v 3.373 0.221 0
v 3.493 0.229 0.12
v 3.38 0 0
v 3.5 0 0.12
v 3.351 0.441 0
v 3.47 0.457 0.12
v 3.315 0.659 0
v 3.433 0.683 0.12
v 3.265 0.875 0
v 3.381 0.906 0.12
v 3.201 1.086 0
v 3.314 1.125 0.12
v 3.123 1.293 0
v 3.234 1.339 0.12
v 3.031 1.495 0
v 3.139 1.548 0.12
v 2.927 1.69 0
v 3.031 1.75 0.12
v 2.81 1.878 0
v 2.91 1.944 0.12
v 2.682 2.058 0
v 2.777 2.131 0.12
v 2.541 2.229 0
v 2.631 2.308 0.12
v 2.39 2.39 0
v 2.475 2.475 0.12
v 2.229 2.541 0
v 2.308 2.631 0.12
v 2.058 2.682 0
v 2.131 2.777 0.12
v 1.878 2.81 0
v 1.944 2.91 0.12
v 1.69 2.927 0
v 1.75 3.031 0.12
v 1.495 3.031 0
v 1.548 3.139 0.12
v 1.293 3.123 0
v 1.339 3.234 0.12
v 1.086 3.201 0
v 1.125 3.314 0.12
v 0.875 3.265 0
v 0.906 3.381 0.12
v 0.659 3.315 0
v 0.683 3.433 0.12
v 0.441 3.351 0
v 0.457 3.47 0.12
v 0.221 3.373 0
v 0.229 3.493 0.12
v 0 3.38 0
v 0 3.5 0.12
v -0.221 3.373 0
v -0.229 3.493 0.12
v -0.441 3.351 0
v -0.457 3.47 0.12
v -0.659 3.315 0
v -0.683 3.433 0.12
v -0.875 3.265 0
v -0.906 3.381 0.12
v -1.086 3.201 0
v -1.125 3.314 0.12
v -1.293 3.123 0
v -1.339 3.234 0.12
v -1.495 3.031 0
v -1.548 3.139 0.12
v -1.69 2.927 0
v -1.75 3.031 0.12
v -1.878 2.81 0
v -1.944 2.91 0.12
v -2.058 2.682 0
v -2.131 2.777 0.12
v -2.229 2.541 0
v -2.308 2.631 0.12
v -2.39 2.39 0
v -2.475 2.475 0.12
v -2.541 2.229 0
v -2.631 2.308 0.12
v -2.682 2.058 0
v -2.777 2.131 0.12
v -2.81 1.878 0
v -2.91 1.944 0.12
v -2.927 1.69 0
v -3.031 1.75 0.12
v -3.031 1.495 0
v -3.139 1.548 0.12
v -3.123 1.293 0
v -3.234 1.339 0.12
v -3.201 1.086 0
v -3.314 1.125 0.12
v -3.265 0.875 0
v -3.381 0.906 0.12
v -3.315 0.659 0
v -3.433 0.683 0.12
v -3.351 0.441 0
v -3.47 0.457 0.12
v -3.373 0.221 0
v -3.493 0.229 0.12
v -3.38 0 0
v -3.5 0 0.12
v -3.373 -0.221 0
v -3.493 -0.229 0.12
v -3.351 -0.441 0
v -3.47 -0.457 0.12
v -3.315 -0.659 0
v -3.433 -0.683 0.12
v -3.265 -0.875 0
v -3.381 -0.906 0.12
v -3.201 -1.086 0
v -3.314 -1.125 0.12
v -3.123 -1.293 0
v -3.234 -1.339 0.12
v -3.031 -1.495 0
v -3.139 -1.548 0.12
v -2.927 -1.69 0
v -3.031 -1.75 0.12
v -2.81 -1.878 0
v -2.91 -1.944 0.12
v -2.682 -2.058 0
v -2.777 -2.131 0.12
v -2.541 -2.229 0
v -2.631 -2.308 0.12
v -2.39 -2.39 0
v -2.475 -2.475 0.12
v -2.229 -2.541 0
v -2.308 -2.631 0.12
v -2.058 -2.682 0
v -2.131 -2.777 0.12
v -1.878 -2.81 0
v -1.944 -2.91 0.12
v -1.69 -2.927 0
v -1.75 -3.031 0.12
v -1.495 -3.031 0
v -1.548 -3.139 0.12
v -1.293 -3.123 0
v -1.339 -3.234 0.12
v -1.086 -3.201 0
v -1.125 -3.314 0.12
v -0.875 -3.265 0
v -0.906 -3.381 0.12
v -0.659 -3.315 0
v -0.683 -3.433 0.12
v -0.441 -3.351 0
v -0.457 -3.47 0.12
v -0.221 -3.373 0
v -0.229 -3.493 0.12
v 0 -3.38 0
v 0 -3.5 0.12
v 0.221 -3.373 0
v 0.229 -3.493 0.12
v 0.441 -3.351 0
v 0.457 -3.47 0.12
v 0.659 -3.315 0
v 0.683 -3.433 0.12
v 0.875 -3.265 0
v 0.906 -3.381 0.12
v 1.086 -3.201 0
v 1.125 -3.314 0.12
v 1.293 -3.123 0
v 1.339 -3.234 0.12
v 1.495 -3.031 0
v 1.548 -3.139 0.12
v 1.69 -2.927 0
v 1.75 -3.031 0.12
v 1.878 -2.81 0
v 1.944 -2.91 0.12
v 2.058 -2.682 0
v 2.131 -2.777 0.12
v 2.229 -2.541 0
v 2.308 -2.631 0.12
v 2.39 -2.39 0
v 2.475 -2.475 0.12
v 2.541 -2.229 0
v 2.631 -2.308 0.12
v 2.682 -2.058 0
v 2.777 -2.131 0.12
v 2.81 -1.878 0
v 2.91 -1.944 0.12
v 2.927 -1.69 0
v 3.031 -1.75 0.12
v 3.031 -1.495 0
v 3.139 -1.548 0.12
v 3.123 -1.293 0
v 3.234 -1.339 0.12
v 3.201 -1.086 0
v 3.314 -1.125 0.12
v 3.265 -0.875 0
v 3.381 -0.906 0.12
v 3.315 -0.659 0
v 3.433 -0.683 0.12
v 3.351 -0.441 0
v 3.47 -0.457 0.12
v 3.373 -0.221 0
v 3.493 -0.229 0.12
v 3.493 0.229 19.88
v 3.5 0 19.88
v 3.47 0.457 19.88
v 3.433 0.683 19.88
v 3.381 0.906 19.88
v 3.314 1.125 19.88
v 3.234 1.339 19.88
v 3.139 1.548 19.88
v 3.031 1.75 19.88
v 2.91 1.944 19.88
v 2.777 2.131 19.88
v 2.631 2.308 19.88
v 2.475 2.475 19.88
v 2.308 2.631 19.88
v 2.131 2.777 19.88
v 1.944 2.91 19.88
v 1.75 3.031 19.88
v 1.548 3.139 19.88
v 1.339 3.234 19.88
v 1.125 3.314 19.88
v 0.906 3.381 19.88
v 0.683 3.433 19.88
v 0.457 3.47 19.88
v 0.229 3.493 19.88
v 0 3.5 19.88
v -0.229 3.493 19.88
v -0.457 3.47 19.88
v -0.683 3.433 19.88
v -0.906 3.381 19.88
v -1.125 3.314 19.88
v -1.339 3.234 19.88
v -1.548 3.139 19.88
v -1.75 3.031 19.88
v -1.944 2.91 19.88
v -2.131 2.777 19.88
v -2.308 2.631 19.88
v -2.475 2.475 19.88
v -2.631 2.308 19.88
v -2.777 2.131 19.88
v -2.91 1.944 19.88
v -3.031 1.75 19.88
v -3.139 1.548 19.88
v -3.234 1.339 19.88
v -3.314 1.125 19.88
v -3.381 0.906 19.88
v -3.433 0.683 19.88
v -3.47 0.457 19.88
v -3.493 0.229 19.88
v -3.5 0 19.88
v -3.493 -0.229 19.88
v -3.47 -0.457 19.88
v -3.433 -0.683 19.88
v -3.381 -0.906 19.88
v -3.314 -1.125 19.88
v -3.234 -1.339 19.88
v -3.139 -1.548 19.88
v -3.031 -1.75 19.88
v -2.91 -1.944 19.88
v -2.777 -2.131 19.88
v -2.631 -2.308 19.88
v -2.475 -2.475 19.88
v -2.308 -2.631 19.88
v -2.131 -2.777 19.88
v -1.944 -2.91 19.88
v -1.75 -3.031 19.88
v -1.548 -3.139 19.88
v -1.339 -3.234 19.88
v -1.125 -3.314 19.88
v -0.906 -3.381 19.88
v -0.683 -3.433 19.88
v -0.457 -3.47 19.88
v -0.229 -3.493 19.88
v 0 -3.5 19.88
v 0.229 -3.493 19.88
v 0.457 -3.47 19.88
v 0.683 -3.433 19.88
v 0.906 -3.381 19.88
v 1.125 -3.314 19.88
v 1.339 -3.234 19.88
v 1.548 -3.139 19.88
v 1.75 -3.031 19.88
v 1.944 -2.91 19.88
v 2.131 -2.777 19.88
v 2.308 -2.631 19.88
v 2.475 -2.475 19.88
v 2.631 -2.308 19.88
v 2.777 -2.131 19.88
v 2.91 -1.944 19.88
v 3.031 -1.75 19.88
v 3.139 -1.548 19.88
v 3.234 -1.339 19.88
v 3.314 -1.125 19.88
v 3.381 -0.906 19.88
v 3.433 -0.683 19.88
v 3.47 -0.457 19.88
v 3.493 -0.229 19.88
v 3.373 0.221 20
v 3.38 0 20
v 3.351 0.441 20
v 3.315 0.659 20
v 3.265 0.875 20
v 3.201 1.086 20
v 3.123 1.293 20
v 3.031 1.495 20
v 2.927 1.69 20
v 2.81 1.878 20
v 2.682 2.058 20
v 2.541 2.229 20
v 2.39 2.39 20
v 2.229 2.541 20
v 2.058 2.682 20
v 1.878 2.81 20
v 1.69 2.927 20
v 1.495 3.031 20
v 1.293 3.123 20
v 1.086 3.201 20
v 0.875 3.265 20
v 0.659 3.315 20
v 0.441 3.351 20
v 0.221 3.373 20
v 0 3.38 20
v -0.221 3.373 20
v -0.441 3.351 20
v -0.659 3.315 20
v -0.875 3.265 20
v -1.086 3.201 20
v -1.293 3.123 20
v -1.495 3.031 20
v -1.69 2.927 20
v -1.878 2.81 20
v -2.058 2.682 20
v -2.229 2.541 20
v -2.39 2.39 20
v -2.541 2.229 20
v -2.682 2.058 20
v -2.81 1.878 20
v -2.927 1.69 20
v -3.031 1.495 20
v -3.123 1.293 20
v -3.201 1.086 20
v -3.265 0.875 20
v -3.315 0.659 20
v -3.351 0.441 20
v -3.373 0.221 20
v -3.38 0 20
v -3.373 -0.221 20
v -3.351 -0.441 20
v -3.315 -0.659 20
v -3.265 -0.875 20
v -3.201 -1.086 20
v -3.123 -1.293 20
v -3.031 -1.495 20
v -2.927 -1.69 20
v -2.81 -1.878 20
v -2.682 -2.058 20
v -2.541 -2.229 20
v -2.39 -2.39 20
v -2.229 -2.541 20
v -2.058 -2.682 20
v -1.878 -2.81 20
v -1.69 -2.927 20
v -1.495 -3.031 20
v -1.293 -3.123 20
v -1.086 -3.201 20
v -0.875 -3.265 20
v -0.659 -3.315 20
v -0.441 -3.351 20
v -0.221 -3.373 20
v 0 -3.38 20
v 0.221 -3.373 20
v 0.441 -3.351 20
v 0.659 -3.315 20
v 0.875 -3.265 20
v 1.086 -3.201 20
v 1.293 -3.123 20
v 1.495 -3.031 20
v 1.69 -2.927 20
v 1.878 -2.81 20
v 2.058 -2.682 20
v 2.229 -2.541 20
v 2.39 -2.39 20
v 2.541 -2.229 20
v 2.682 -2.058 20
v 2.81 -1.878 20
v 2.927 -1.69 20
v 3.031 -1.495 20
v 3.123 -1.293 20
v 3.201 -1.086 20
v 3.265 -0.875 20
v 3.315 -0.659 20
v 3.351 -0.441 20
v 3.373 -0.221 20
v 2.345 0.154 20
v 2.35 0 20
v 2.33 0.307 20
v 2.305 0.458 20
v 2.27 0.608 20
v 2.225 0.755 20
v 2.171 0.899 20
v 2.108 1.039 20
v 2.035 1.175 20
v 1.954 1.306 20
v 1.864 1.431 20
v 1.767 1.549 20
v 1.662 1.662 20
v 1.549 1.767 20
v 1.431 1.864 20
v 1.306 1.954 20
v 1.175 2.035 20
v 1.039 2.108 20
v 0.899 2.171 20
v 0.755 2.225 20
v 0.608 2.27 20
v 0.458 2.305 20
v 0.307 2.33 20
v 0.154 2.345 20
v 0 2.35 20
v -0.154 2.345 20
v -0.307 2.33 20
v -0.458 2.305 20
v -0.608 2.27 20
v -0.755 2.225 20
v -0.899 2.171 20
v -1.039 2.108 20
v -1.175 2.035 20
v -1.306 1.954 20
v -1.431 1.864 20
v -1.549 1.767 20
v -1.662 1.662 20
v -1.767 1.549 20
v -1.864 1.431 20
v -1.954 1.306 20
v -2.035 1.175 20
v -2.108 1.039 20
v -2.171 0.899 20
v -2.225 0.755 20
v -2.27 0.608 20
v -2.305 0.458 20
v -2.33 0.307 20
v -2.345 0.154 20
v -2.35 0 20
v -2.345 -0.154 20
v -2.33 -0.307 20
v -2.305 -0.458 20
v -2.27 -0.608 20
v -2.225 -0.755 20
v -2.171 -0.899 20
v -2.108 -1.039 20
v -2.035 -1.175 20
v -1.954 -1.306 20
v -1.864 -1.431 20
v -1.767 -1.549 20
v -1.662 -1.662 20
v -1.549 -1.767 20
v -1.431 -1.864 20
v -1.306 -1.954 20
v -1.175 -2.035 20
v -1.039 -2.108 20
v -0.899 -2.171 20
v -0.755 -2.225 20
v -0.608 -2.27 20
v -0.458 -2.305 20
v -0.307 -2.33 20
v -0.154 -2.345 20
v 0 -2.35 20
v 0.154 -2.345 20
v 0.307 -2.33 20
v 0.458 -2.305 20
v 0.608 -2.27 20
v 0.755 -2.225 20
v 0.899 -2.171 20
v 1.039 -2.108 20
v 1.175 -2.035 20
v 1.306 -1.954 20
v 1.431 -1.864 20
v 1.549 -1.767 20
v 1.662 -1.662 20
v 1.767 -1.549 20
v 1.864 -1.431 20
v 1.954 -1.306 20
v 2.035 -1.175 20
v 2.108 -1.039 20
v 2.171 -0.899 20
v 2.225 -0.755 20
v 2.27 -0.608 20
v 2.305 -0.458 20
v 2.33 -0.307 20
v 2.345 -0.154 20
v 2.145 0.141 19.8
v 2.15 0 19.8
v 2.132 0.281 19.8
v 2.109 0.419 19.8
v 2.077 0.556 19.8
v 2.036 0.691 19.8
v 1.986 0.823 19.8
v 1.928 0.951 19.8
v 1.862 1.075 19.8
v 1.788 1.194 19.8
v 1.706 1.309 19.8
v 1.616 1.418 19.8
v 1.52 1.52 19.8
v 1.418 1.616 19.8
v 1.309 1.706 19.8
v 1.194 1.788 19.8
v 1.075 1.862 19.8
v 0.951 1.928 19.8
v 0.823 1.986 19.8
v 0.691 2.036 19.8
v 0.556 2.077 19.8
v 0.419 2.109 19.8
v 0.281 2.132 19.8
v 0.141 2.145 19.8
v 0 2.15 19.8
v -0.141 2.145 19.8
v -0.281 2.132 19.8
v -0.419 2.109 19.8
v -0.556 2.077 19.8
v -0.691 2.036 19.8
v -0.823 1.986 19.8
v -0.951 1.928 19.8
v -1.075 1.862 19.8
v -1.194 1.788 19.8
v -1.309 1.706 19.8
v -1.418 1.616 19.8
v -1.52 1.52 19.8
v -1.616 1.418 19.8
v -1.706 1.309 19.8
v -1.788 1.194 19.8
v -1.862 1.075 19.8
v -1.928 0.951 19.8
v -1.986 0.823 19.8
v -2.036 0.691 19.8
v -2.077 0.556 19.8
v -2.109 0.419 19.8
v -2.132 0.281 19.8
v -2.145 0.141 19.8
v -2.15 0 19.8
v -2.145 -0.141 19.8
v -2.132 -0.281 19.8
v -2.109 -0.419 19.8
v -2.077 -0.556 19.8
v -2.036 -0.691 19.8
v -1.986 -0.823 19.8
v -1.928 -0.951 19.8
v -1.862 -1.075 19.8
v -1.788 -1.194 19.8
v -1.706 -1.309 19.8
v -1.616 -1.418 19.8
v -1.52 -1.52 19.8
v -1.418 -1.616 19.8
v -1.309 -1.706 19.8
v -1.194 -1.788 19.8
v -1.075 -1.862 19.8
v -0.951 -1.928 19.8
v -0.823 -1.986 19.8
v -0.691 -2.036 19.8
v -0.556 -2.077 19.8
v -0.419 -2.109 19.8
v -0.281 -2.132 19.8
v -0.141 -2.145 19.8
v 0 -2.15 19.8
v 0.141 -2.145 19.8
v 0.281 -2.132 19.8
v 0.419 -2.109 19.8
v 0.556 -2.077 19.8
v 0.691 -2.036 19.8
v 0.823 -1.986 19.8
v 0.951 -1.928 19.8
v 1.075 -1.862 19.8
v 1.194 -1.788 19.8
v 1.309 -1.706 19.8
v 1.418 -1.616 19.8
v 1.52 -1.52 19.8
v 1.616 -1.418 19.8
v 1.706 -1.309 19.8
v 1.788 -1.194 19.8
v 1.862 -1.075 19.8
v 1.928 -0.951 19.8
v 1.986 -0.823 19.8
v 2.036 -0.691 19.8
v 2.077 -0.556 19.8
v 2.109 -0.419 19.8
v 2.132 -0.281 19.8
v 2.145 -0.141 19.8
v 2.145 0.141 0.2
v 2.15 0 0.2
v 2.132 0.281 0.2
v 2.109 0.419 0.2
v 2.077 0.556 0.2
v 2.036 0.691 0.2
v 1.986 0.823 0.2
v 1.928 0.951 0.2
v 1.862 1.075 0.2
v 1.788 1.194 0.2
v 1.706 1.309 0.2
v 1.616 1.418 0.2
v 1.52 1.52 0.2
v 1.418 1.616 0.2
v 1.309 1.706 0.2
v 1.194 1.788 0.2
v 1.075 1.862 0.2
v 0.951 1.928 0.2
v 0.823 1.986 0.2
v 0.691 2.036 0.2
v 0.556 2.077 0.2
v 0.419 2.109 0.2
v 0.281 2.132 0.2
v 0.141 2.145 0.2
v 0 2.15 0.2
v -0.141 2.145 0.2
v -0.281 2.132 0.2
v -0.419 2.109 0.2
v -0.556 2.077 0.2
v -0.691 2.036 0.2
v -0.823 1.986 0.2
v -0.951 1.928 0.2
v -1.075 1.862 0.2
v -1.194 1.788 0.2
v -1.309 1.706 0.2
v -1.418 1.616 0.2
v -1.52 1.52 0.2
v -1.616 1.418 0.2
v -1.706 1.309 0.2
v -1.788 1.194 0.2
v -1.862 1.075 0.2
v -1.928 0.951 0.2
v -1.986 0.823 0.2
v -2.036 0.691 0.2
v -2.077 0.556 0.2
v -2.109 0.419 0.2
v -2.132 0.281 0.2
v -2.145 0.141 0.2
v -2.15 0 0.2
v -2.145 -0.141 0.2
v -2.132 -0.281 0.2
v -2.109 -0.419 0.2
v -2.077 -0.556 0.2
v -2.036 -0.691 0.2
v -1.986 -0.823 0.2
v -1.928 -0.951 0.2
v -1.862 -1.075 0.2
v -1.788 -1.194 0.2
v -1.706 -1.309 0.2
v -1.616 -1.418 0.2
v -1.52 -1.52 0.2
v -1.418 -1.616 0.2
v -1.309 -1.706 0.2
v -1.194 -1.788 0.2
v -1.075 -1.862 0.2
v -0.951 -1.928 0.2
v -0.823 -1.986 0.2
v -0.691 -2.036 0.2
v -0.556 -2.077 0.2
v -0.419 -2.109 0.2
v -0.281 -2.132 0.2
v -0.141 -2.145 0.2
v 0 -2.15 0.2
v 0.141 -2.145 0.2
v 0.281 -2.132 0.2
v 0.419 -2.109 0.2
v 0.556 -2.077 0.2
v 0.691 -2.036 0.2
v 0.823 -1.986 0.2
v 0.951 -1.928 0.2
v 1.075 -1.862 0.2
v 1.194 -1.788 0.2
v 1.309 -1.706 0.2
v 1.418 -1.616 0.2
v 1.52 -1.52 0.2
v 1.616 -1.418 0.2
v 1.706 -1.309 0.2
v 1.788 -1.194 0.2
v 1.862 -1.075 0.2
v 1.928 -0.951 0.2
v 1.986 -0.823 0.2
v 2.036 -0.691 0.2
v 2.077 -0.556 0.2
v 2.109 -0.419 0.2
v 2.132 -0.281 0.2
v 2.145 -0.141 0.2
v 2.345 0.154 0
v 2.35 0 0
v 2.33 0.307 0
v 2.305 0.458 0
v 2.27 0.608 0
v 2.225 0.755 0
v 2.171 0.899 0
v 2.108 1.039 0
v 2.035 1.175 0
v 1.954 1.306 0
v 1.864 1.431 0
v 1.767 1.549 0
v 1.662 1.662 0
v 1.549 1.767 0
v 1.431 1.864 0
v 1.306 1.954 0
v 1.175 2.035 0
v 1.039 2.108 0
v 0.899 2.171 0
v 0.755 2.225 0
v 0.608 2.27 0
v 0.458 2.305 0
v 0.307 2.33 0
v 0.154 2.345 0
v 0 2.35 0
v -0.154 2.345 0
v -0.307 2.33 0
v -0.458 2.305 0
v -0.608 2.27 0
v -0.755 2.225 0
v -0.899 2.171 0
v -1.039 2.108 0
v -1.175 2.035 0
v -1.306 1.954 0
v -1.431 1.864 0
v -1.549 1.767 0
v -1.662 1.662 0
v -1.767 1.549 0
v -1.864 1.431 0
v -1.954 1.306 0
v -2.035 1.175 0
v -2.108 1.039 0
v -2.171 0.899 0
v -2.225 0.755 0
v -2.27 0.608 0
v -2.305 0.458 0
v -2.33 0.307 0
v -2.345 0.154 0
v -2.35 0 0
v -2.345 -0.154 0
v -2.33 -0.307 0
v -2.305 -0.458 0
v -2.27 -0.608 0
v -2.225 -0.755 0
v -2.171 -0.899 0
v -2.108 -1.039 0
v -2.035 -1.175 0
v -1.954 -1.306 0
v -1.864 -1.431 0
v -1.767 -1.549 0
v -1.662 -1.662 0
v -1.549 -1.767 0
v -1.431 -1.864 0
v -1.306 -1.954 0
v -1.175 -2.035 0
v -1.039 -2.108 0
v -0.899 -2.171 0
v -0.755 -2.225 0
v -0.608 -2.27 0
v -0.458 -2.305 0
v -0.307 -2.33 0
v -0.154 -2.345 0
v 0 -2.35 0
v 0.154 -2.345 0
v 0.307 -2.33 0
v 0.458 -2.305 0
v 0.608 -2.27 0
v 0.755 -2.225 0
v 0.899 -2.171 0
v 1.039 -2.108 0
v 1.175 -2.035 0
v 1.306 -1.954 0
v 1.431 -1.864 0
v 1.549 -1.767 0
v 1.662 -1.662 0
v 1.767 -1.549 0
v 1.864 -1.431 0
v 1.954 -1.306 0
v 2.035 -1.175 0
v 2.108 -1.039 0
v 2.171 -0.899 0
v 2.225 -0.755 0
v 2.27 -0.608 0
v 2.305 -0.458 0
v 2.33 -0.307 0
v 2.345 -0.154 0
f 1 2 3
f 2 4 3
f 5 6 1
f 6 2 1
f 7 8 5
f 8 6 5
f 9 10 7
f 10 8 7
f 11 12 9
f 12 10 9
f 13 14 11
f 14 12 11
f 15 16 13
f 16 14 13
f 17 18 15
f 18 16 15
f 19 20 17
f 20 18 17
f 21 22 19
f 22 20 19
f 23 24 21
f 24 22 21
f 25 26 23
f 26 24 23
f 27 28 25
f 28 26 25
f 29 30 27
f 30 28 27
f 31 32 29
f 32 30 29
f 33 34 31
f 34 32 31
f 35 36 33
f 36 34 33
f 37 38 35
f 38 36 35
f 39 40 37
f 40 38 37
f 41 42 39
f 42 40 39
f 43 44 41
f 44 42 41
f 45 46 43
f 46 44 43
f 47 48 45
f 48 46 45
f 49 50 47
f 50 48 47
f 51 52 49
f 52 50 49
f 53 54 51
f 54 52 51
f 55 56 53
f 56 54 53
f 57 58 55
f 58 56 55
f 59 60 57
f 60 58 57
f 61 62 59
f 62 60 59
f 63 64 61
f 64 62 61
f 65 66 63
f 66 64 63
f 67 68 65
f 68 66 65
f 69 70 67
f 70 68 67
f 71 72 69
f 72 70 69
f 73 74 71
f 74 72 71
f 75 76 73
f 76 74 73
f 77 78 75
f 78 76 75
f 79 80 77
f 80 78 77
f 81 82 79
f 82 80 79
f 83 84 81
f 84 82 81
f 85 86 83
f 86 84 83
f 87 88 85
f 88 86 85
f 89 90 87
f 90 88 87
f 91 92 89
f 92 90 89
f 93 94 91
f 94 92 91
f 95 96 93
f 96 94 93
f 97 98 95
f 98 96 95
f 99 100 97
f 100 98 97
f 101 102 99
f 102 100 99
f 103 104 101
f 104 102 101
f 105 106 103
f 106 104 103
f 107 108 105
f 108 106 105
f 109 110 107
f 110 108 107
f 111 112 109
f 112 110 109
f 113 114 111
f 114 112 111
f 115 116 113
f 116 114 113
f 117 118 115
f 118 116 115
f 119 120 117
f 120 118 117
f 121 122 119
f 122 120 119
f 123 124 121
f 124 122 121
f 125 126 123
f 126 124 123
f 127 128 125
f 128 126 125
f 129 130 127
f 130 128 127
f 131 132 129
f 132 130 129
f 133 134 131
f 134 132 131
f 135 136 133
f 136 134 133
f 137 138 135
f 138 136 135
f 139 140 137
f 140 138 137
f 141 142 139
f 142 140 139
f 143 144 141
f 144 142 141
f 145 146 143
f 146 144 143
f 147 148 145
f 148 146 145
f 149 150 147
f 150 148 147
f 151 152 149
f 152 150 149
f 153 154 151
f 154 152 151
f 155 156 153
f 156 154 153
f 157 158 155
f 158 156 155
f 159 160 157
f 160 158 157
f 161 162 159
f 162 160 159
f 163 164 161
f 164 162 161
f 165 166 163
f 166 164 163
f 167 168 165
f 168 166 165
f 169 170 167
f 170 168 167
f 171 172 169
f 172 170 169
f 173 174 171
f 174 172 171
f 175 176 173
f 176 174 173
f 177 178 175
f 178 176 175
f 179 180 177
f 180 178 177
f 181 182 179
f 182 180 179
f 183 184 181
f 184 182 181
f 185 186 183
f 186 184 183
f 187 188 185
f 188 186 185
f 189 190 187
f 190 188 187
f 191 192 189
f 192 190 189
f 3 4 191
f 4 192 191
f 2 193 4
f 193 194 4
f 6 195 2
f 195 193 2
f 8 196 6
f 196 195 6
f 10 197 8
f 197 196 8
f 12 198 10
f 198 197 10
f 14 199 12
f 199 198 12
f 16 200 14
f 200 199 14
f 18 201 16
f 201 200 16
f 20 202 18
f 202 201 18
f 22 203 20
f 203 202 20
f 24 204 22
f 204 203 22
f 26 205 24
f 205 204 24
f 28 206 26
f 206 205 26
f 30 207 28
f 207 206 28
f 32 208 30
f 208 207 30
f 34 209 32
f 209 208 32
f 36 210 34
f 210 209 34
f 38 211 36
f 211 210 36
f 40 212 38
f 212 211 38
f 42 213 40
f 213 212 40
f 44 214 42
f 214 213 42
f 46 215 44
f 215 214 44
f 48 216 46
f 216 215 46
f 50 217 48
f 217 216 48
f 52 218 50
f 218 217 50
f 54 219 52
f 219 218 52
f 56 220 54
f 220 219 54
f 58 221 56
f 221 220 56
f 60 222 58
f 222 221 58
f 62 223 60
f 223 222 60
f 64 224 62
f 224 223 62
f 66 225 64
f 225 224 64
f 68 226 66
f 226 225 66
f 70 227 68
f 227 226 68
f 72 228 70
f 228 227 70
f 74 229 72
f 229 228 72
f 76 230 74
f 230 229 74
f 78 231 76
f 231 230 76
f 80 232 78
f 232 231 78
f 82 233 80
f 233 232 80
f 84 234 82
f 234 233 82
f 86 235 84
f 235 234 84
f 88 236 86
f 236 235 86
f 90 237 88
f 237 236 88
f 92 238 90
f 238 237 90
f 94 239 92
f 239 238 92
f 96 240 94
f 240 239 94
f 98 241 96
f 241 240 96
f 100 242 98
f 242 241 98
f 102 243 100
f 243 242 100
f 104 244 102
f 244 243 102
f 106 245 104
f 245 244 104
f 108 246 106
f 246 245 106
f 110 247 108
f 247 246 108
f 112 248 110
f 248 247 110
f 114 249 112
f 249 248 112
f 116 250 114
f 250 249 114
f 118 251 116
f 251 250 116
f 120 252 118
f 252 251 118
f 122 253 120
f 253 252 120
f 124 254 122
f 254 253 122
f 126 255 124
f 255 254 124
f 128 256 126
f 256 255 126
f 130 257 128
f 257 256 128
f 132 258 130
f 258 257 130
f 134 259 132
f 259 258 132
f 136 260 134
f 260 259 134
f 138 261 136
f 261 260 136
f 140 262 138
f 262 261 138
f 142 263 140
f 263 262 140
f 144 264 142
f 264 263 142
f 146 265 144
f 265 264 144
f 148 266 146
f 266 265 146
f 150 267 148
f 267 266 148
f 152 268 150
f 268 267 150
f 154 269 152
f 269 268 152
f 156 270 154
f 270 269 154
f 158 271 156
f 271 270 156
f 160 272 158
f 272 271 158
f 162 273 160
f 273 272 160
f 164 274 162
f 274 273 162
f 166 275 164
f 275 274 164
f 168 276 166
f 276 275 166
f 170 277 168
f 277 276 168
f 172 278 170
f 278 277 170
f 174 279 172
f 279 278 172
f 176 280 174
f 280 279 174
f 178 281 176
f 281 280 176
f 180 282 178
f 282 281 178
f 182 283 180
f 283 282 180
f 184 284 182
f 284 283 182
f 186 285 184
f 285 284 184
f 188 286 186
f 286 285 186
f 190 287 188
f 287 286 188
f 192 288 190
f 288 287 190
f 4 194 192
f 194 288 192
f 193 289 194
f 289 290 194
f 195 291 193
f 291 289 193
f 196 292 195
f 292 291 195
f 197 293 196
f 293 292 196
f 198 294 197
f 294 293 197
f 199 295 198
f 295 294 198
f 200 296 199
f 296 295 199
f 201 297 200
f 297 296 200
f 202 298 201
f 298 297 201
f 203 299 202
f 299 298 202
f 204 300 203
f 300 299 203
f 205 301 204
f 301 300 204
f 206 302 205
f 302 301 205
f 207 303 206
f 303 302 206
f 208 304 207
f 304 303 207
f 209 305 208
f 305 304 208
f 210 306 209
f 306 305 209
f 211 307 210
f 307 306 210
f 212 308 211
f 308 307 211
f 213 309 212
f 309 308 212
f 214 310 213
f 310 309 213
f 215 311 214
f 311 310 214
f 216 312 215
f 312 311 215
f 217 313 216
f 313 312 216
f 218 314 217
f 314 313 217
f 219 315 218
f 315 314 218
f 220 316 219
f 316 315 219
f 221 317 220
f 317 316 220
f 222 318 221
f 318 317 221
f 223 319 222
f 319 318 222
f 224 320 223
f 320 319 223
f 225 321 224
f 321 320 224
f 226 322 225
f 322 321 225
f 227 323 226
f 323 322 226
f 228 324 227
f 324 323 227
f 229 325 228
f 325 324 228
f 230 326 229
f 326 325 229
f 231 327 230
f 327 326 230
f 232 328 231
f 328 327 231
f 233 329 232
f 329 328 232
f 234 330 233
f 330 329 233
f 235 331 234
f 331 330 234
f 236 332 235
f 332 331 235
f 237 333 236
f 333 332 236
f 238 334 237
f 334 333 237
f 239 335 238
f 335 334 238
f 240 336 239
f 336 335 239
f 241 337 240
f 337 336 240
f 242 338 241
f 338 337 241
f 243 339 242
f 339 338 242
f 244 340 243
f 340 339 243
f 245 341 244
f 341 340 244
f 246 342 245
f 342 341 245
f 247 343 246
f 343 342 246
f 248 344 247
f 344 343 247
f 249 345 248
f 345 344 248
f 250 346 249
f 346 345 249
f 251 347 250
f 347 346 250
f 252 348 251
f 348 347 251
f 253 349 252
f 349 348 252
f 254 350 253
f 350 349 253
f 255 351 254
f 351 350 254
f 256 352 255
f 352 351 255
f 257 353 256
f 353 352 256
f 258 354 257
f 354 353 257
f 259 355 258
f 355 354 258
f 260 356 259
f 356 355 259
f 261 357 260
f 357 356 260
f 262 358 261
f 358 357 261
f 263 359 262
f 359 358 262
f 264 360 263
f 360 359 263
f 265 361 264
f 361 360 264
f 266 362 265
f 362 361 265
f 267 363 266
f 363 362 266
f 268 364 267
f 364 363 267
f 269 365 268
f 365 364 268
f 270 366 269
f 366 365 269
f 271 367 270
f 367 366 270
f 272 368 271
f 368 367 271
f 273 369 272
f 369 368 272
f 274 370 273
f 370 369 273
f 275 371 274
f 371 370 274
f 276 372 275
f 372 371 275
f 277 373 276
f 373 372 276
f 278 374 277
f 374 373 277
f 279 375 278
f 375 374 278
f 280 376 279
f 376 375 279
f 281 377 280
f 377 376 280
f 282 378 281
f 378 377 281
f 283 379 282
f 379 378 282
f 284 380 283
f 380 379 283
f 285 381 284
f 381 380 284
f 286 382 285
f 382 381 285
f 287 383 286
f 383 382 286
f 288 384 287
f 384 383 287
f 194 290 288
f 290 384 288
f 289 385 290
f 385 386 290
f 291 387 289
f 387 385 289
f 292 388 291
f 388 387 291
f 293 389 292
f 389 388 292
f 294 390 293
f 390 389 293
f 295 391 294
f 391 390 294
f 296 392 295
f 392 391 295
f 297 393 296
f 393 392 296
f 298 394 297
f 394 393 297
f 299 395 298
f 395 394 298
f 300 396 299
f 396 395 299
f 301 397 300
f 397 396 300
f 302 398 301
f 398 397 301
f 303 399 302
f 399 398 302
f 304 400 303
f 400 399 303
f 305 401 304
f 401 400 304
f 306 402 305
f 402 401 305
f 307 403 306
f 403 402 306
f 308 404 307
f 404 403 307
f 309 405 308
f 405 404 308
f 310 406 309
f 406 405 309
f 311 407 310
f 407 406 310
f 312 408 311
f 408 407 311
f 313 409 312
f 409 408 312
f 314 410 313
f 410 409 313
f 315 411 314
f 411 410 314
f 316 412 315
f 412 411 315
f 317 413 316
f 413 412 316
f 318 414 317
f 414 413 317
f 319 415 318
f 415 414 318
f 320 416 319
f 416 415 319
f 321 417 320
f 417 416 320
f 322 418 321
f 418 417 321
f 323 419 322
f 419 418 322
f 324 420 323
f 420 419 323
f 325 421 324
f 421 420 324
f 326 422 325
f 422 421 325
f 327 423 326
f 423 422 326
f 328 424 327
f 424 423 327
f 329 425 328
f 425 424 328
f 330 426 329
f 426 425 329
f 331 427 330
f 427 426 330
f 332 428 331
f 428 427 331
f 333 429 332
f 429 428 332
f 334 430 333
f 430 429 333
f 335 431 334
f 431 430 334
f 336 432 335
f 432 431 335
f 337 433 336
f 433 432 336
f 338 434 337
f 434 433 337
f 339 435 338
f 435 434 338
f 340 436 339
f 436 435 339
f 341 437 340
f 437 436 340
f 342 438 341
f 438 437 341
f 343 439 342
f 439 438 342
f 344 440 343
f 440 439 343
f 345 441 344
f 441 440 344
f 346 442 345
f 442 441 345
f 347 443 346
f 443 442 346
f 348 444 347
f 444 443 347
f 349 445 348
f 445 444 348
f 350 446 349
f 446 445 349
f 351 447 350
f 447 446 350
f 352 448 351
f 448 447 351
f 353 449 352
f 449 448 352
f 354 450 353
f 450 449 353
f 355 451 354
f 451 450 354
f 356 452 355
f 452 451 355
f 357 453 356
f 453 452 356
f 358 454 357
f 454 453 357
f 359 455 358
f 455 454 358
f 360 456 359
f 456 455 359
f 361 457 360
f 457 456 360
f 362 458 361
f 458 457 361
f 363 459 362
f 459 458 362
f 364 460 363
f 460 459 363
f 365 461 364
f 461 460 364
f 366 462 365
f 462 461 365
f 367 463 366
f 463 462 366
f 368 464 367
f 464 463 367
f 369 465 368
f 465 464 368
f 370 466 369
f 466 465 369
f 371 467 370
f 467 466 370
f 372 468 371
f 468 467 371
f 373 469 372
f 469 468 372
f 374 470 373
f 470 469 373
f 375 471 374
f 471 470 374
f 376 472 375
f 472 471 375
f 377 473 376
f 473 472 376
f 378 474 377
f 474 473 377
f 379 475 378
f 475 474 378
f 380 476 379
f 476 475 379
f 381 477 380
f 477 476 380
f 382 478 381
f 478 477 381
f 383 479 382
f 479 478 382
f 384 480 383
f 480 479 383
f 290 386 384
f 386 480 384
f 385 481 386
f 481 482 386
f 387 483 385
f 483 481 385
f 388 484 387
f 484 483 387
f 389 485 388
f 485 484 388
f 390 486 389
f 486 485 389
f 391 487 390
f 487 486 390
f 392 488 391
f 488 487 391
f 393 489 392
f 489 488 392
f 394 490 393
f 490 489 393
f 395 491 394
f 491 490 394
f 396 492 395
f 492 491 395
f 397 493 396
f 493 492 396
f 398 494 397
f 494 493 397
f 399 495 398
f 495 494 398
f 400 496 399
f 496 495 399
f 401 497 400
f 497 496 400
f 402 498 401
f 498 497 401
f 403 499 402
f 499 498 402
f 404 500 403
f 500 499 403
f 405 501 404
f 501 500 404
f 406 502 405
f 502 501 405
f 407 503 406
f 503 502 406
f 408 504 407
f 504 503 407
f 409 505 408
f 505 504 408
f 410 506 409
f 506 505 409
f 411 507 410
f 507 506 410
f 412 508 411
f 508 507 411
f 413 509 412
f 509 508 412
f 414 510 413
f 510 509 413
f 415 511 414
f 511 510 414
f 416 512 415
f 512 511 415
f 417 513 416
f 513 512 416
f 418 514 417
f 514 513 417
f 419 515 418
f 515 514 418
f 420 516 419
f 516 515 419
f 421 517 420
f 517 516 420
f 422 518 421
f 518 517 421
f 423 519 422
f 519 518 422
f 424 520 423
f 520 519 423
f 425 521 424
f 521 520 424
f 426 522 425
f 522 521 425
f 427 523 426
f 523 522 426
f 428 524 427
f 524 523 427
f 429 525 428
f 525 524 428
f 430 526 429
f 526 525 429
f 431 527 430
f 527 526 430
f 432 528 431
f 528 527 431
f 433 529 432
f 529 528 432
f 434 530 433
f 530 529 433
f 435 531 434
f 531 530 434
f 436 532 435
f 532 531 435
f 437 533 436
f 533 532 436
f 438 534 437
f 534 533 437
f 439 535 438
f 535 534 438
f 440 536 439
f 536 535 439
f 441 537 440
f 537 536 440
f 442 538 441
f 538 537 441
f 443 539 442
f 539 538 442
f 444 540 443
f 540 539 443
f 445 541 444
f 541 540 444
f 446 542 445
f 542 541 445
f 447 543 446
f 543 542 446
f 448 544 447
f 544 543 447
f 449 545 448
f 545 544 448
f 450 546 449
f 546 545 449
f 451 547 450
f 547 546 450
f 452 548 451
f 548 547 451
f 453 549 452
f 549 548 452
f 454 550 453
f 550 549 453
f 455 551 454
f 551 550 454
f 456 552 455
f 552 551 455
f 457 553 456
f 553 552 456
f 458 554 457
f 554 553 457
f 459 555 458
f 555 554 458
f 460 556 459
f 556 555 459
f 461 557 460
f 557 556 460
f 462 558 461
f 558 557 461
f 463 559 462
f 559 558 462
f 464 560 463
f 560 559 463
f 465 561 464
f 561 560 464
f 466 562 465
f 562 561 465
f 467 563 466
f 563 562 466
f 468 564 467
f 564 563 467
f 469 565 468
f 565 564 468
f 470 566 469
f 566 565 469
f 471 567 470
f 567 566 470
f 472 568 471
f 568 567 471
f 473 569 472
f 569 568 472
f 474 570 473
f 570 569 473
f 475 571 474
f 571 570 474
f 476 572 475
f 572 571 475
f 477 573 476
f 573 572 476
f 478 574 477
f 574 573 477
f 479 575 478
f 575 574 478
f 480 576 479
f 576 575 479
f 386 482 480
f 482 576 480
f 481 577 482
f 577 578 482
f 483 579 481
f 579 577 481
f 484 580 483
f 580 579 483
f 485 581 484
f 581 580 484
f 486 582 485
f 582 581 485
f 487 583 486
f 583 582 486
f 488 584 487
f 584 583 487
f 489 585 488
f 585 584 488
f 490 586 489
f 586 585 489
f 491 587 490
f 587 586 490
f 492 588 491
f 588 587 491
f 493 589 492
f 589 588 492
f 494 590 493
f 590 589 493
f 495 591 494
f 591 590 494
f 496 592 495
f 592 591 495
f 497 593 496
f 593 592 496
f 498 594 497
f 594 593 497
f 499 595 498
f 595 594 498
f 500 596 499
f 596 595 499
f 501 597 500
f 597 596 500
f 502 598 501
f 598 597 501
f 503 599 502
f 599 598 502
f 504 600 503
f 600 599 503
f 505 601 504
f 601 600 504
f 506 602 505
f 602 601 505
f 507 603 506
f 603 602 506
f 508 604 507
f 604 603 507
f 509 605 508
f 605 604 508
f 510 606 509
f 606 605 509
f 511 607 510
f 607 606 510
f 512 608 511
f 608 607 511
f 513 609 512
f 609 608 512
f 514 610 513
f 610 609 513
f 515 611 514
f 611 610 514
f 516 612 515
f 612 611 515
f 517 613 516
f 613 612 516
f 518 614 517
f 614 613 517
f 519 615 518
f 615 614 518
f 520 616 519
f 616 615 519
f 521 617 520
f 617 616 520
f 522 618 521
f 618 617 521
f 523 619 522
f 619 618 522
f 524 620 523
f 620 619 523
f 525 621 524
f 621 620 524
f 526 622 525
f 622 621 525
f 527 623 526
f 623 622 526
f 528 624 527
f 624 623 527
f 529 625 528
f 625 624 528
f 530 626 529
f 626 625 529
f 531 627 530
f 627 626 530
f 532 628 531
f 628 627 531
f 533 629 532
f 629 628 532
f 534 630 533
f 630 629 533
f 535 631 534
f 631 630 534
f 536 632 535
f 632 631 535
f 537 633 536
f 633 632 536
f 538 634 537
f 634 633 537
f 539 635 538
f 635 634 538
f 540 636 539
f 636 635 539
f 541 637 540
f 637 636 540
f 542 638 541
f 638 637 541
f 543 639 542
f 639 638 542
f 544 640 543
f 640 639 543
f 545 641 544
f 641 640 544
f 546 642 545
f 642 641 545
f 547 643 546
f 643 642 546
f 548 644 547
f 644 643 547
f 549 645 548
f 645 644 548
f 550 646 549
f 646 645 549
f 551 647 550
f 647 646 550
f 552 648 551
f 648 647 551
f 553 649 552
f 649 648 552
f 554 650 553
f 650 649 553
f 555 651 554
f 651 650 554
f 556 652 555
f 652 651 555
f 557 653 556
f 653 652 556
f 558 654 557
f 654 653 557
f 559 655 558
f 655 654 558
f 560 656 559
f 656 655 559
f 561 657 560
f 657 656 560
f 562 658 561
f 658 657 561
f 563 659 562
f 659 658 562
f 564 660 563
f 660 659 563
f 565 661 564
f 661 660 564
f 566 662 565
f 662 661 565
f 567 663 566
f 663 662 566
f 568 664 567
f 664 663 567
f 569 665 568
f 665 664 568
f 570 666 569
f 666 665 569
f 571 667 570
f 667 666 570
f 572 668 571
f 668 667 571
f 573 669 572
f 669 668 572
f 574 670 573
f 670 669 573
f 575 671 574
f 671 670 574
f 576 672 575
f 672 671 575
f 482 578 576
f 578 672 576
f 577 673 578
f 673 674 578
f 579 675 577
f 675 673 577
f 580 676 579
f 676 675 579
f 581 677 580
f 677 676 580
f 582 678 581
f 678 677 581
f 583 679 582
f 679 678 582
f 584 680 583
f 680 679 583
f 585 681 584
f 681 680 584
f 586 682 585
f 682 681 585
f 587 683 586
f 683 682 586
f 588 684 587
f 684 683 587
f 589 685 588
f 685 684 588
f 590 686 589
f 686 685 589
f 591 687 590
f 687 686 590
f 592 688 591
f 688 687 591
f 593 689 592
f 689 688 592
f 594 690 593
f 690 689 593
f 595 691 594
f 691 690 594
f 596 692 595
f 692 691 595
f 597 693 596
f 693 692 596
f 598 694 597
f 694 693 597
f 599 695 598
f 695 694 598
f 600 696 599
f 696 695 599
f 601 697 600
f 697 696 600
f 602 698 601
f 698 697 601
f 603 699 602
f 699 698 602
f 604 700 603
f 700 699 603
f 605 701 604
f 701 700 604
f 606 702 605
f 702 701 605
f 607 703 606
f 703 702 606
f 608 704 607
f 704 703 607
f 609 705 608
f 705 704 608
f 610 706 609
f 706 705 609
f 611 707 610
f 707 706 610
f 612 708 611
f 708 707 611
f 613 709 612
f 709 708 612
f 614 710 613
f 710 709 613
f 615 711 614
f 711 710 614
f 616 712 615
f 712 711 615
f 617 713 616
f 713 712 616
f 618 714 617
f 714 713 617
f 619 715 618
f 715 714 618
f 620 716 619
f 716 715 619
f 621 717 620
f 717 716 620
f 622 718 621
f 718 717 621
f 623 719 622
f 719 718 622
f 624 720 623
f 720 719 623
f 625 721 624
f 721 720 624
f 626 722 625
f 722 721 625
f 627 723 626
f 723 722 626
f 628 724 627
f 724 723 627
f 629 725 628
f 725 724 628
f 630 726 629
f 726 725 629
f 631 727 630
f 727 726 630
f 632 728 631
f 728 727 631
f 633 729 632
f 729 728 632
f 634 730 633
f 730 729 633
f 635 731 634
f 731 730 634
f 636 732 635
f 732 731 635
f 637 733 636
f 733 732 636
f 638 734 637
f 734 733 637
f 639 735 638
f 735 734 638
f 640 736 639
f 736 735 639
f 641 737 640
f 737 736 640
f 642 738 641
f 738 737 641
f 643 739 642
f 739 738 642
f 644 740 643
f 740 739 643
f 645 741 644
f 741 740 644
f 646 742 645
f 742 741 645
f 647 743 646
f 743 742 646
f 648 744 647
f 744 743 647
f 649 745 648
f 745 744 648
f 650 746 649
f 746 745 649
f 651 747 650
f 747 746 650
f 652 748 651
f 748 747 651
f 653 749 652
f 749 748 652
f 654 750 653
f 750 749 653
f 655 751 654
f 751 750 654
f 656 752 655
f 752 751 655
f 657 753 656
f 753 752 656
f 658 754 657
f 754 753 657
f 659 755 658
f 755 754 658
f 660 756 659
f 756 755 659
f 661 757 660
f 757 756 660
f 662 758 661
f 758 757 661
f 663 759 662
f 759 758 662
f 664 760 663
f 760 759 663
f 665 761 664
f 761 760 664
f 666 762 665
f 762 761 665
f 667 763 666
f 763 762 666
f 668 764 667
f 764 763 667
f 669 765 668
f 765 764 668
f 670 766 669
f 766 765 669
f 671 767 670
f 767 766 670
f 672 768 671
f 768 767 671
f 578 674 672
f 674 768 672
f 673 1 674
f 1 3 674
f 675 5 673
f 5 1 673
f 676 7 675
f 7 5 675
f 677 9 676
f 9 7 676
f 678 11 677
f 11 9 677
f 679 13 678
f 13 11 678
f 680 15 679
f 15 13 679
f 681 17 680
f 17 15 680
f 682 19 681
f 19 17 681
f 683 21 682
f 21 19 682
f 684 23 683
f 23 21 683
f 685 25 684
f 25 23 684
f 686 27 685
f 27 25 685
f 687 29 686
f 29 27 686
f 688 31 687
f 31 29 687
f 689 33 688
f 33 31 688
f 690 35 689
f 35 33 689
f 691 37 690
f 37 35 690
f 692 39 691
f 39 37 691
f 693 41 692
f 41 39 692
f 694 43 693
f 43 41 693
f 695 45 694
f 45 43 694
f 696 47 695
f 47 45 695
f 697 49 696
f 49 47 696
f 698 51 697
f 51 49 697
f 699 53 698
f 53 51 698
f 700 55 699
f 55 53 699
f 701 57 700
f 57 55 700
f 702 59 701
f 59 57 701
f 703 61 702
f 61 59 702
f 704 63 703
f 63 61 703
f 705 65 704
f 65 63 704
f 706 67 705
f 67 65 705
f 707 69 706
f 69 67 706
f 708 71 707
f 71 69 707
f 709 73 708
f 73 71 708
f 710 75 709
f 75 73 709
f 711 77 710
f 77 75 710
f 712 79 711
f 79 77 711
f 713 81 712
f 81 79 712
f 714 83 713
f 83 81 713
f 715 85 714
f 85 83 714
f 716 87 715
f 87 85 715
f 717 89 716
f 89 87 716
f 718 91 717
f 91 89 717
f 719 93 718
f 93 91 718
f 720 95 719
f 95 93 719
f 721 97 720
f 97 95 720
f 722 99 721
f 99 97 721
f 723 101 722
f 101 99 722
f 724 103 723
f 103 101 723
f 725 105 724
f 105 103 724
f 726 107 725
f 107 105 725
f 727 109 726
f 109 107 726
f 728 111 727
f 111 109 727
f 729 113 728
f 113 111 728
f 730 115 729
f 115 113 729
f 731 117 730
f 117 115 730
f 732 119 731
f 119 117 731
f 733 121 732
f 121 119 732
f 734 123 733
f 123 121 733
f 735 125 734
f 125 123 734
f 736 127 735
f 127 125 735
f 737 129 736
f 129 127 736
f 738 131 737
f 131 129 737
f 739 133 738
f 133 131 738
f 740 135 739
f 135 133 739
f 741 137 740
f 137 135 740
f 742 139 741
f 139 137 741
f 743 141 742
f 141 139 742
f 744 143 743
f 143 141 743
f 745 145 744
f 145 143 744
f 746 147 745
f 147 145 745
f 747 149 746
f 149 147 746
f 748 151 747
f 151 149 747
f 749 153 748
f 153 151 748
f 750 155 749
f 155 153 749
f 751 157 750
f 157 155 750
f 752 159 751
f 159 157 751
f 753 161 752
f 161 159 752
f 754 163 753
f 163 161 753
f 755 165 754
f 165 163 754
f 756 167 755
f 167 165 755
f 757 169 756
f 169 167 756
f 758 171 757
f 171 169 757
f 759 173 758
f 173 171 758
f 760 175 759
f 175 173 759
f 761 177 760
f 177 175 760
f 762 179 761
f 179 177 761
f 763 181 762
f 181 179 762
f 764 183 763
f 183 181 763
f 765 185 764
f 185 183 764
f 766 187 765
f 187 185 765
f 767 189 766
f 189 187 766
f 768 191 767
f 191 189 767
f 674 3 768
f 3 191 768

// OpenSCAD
// OOMP generic catalogue model; units: mm.
// Stud length is additional to body depth. Tapping depths are model assumptions.
variant = "full"; // [full, display]
family = "spacer";
connection_type = "plain";
depth_mm = 20;
stud_length_mm = 0;
tapped_depth_mm = 0;
bore_mm = 4.3;
outer_diameter_mm = 7;
across_flats_mm = 6;
thread_nominal_diameter_mm = 3;
thread_pitch_mm = 0.5;
edge_chamfer_mm = 0.12;
mouth_chamfer_mm = 0.2;
angular_segments = 96;
samples_per_pitch = 16;

// Boundary travels up the outside, then down any tapped/plain bore.
// Equal-height rings at shoulders form the annular shoulder faces.
n = angular_segments;
threaded = family == "standoff";
has_stud = connection_type == "stud_to_tapped" || connection_type == "stud_to_stud";
two_studs = connection_type == "stud_to_stud";
through = !threaded || connection_type == "tapped_to_tapped";
pitch = thread_pitch_mm;
diameter = threaded ? thread_nominal_diameter_mm : bore_mm;
minor = diameter - 5*sqrt(3)*pitch/8;
transition = mouth_chamfer_mm + (threaded ? 5*sqrt(3)*pitch/16 : 0);
tip_chamfer = mouth_chamfer_mm + 17*sqrt(3)*pitch/48;
function sorted(v) = len(v)<=1 ? v : let(p=v[0])
    concat(sorted([for(x=v) if(x<p-1e-8) x]), [p], sorted([for(x=v) if(x>p+1e-8) x]));
function reverse(v) = [for(i=[len(v)-1:-1:0]) v[i]];
function theta(i) = i*360/n;
function fract(x) = x-floor(x);
function phase_distance(i,z) = abs(fract(z/pitch-theta(i)/360+0.5)-0.5);
function thread_r(i,z) = minor/2 + min(5*sqrt(3)*pitch/16,
    max(0,(phase_distance(i,z)-0.125)*pitch*sqrt(3)));
function stud_r(i,z,tip) = min(diameter/2 - (variant=="full" ?
    min(17*sqrt(3)*pitch/48,max(0,(phase_distance(i,z)-0.0625)*pitch*sqrt(3))) : 0),
    diameter/2-tip_chamfer+abs(z-tip));
function body_r(i,z) = (threaded ? across_flats_mm/2/cos(theta(i)%60-30) : outer_diameter_mm/2)
    - max(0,edge_chamfer_mm-min(z,depth_mm-z));
function bore_r(i,z) = max(threaded ? (variant=="full" ? thread_r(i,z) : minor/2) : diameter/2,
    diameter/2+mouth_chamfer_mm-(through ? min(z,depth_mm-z) : depth_mm-z));
function stud_z(a,b,tip) = let(count=variant=="full" ? ceil(stud_length_mm/pitch*samples_per_pitch) : 1)
    sorted(concat([for(i=[0:count]) a+(b-a)*i/count], [tip==a ? tip+tip_chamfer : tip-tip_chamfer]));
body_z = sorted([0,edge_chamfer_mm,depth_mm-edge_chamfer_mm,depth_mm]);
low = through ? 0 : depth_mm-tapped_depth_mm;
count = threaded && variant=="full" ? ceil((depth_mm-low)/pitch*samples_per_pitch) : 1;
bore_z = two_studs ? [] : reverse(sorted(concat(
    [for(i=[0:count]) low+(depth_mm-low)*i/count],
    [depth_mm-mouth_chamfer_mm,depth_mm-transition],
    through ? [mouth_chamfer_mm,transition] : [])));
// Ring descriptors: [height, kind, tip]. Kind: 0 body, 1 stud, 2 bore.
rings = concat(
    has_stud ? [for(z=stud_z(-stud_length_mm,0,-stud_length_mm)) [z,1,-stud_length_mm]] : [],
    [for(z=body_z) [z,0,0]],
    two_studs ? [for(z=stud_z(depth_mm,depth_mm+stud_length_mm,depth_mm+stud_length_mm)) [z,1,depth_mm+stud_length_mm]] : [],
    [for(z=bore_z) [z,2,0]]);
function radius(i,ring) = ring[1]==0 ? body_r(i,ring[0]) :
    ring[1]==1 ? stud_r(i,ring[0],ring[2]) : bore_r(i,ring[0]);
points = concat([for(ring=rings) for(i=[0:n-1])
    [radius(i,ring)*cos(theta(i)),radius(i,ring)*sin(theta(i)),ring[0]]],
    through ? [] : [[0,0,rings[0][0]],[0,0,rings[len(rings)-1][0]]]);
center = len(rings)*n;
last = (len(rings)-1)*n;
// OpenSCAD winding is opposite to STL winding.
faces = concat(
    [for(j=[0:len(rings)-(through ? 1 : 2)]) for(i=[0:n-1]) each
        let(a=j*n+i,b=j*n+(i+1)%n,c=((j+1)%len(rings))*n+(i+1)%n,d=((j+1)%len(rings))*n+i)
        [[a,c,b],[a,d,c]]],
    through ? [] : [for(i=[0:n-1]) each let(k=(i+1)%n)
        [[center,i,k],[center+1,last+k,last+i]]]);
assert(family=="spacer" || family=="standoff");
assert(!threaded || connection_type=="tapped_to_tapped" || has_stud);
assert(depth_mm>0 && diameter>0 && pitch>0);
assert(variant=="full" || variant=="display");
assert(n>=24 && n%12==0 && samples_per_pitch>=8);
assert(mouth_chamfer_mm>0 && mouth_chamfer_mm<depth_mm/2);
assert(edge_chamfer_mm>=0 && edge_chamfer_mm<depth_mm/2);
assert(diameter+4*max(mouth_chamfer_mm,edge_chamfer_mm) < (threaded ? across_flats_mm : outer_diameter_mm));
assert(!has_stud || stud_length_mm>2*mouth_chamfer_mm);
assert(!through || !threaded || 2*transition<depth_mm);
assert(connection_type!="stud_to_tapped" || (tapped_depth_mm>transition && tapped_depth_mm<depth_mm));
color([0.86,0.85,0.81]) polyhedron(points=points,faces=faces,convexity=20);
